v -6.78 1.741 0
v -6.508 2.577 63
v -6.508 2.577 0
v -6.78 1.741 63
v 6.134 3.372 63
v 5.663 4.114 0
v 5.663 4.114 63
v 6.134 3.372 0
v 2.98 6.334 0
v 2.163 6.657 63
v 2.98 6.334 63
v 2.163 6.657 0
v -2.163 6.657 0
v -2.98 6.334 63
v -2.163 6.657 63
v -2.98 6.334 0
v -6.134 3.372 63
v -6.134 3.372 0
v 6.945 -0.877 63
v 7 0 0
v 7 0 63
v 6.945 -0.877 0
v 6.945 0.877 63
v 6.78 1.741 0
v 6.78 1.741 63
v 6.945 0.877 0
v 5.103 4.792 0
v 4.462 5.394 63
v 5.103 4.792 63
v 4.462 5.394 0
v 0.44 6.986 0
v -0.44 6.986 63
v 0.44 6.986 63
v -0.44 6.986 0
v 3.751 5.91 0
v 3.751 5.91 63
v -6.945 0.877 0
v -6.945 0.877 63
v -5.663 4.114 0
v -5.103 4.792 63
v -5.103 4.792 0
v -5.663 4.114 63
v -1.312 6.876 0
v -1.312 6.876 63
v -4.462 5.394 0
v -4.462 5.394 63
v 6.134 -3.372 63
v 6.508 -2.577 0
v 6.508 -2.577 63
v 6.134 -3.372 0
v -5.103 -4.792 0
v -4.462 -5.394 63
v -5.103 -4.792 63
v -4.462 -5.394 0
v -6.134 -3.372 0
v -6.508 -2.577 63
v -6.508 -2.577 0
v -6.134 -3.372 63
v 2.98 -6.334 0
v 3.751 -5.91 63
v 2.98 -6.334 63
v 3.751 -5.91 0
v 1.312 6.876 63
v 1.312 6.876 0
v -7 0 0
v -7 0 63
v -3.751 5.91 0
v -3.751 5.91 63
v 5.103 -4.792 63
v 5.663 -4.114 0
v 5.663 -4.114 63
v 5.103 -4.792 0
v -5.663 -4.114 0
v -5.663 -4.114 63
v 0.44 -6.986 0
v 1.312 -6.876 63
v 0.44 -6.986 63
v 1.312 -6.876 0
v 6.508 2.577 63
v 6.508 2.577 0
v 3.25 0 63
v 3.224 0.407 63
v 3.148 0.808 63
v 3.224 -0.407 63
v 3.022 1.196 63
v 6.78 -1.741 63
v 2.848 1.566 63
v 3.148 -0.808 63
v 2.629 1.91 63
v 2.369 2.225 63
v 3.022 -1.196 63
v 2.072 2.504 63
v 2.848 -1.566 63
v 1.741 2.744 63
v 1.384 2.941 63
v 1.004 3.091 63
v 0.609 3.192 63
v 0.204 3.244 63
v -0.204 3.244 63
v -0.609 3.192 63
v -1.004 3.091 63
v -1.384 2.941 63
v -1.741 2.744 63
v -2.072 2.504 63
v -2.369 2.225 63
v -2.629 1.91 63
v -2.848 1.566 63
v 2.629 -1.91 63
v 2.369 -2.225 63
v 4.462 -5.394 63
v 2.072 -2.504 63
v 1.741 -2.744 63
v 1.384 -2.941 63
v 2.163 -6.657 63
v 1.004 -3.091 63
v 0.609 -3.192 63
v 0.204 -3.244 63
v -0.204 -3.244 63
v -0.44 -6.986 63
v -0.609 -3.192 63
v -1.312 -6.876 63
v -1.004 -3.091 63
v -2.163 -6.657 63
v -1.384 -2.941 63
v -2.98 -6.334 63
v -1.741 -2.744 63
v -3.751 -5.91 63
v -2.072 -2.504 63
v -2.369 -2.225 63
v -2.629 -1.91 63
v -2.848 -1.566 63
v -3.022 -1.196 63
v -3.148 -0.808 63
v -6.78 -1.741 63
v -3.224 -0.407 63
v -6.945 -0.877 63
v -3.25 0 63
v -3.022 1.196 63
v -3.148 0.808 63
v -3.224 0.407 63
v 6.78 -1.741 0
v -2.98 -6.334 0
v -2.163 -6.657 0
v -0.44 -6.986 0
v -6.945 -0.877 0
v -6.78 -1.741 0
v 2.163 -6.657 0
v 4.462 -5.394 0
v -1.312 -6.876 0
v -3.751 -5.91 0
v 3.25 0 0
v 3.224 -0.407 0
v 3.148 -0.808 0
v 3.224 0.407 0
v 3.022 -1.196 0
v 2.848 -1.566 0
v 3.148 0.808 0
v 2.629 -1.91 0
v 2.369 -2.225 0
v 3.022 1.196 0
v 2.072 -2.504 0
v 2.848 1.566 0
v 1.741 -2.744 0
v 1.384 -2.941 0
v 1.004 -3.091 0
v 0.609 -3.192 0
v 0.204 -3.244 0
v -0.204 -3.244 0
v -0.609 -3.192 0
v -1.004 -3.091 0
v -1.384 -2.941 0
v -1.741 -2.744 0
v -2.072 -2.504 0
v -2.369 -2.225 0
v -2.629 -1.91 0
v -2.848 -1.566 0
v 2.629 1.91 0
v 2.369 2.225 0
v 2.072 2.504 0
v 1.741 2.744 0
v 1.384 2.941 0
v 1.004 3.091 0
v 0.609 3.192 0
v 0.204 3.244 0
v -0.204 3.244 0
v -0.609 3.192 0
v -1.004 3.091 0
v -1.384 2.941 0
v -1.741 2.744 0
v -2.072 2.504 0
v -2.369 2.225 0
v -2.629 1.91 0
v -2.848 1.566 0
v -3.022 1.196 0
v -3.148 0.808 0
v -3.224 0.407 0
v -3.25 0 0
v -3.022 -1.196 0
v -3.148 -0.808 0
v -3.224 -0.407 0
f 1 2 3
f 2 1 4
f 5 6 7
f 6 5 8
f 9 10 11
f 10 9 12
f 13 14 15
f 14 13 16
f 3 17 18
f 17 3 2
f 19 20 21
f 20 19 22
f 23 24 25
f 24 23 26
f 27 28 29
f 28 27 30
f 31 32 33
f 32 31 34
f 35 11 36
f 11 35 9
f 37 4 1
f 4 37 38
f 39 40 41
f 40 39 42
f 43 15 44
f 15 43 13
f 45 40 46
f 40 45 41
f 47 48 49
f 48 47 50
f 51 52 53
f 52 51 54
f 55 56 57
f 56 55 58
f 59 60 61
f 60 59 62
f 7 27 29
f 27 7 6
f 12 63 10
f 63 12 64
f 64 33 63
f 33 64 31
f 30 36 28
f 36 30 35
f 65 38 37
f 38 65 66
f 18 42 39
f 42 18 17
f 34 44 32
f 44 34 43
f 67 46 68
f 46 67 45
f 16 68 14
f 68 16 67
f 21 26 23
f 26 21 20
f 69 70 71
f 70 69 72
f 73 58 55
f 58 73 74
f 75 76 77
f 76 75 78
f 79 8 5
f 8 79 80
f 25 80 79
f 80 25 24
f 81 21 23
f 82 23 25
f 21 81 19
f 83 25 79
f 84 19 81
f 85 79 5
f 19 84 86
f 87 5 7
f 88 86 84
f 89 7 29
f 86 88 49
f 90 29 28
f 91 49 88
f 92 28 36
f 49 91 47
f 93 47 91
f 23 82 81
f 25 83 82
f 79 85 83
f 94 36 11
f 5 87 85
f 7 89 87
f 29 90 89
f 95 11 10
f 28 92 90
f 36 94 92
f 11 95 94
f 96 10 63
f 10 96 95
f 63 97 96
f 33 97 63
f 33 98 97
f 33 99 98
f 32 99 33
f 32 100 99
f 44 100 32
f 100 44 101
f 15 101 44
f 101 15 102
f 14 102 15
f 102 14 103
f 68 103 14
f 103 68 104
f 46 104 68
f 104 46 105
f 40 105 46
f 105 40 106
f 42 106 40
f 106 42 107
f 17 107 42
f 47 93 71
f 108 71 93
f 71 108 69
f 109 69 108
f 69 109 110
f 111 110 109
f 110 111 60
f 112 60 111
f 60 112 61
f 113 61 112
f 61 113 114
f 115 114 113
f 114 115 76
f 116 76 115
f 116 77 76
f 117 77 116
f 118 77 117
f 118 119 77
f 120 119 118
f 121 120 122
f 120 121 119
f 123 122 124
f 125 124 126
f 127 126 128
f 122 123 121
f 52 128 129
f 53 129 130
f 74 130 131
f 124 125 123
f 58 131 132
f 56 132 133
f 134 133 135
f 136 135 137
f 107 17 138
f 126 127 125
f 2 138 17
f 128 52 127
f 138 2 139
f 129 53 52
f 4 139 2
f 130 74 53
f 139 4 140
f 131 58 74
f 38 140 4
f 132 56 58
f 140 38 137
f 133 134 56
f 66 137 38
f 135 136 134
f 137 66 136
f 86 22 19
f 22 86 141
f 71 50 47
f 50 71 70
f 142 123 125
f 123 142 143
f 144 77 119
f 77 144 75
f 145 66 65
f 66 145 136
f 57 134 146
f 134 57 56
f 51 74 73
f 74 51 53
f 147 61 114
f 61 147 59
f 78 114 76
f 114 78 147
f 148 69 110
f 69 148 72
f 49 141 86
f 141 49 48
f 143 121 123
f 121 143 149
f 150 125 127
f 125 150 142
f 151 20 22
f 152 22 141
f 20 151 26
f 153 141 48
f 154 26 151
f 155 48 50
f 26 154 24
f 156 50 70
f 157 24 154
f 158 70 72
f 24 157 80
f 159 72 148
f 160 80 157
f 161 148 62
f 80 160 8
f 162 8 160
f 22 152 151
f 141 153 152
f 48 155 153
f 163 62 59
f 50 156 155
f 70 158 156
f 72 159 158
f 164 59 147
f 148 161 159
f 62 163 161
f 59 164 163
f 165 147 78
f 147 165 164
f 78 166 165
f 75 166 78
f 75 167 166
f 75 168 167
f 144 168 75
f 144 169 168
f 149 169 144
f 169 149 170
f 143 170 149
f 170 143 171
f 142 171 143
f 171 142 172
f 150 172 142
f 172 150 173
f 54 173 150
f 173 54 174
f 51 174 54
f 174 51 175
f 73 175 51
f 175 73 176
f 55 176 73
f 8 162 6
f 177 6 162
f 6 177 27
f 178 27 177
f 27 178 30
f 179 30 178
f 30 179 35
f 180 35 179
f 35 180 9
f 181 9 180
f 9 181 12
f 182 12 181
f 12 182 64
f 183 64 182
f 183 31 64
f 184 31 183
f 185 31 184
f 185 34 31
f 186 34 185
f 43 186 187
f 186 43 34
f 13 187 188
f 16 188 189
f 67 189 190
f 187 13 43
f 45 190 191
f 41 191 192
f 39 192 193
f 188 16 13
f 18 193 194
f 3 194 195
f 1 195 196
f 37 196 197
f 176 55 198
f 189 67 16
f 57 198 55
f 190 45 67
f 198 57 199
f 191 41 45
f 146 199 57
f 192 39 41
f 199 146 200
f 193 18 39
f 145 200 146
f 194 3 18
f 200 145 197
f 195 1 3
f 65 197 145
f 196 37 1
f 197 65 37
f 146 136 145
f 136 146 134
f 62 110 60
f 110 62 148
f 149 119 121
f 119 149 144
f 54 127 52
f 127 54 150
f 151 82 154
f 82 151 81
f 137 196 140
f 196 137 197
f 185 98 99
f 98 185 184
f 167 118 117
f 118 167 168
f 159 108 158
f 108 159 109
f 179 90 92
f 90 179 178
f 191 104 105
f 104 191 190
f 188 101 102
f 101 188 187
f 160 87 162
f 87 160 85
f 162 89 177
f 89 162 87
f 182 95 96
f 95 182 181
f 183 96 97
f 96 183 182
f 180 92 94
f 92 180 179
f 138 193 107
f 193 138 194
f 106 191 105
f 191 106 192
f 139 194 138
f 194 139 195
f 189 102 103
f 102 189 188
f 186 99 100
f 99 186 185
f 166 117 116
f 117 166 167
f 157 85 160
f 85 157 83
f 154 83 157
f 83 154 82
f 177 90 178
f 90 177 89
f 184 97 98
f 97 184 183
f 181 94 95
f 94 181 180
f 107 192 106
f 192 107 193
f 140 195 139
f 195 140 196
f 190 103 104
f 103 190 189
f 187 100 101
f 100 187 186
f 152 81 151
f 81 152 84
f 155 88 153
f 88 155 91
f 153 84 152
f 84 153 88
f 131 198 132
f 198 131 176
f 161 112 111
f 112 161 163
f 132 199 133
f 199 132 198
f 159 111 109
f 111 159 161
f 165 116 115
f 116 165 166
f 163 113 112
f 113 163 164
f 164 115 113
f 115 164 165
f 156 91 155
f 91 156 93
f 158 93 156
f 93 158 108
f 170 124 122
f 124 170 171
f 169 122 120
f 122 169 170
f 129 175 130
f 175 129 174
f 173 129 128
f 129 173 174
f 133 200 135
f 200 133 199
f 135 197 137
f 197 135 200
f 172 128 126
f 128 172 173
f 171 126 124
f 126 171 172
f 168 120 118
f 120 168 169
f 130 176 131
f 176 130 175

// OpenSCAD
$fn = 50;


difference() {
	union() {
		cylinder(h = 63, r = 7.0000000000);
	}
	union() {
		translate(v = [0, 0, -100]) {
			cylinder(h = 200, r = 3.2500000000);
		}
		translate(v = [0, 0, -100]) {
			cylinder(h = 200, r = 1.8000000000);
		}
	}
}
